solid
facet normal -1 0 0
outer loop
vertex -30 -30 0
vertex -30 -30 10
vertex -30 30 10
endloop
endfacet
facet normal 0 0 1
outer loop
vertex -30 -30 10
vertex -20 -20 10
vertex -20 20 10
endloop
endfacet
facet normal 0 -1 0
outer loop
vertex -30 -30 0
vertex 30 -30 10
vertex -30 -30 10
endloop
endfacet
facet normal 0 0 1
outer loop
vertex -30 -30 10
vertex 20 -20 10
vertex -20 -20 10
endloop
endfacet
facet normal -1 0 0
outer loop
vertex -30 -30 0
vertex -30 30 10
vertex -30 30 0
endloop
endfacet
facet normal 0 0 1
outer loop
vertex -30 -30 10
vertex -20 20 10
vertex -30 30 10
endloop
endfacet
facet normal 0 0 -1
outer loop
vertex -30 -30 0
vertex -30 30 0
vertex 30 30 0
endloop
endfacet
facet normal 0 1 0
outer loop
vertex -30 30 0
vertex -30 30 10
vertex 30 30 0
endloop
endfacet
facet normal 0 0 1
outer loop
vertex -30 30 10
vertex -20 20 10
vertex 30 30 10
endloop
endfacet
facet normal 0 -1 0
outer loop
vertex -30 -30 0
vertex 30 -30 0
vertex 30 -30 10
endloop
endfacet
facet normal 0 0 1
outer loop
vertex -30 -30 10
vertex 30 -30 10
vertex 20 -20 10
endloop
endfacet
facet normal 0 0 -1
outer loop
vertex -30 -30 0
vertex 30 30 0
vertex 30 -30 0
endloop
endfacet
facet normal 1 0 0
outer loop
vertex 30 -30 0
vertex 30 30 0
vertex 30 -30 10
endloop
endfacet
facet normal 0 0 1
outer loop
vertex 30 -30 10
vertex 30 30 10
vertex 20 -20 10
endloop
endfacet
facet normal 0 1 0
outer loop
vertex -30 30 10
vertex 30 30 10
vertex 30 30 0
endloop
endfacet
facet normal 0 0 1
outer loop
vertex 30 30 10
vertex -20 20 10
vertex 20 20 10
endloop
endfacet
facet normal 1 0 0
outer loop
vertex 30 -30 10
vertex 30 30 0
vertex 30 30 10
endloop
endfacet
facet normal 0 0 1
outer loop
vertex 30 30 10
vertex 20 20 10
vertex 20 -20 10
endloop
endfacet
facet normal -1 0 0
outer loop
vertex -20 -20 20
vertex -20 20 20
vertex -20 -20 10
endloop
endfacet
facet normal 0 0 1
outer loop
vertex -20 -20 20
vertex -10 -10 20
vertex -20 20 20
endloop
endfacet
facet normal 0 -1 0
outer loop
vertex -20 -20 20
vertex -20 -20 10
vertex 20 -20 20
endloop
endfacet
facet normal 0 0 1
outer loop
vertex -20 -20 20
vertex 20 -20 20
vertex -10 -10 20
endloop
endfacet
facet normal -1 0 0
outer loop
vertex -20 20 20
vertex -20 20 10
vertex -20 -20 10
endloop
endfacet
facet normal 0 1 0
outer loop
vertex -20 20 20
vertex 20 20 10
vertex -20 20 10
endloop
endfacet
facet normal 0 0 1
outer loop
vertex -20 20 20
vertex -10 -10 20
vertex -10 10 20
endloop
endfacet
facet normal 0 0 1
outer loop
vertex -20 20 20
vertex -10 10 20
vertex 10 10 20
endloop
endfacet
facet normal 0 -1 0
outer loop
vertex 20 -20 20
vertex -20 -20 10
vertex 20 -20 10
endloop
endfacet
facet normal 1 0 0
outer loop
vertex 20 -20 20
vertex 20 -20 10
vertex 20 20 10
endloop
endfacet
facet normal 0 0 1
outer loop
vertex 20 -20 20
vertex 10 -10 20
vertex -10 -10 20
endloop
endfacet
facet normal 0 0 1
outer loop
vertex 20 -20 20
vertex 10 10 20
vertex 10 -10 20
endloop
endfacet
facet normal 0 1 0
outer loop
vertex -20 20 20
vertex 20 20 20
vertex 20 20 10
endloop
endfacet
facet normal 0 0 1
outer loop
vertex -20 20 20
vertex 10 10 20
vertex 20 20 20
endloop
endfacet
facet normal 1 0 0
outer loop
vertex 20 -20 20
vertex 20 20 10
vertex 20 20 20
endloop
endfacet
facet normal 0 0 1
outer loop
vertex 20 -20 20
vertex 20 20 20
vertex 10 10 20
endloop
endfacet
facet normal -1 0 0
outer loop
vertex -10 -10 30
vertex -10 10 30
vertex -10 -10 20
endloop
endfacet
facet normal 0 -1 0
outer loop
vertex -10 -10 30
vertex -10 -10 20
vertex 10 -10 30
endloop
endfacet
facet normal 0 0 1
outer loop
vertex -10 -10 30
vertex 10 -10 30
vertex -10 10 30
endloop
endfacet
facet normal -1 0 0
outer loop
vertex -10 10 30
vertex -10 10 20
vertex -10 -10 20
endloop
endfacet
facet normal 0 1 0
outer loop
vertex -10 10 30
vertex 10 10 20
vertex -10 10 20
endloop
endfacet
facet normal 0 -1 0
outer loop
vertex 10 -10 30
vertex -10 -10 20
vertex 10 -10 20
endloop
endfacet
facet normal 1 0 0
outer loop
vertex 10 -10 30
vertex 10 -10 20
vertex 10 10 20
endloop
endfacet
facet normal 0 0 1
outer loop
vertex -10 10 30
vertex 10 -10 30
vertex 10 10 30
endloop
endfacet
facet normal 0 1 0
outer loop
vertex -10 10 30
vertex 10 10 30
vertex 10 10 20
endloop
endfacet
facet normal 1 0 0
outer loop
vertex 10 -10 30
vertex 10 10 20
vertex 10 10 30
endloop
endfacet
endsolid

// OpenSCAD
// 3段の階段状ピラミッド
// 各立方板は center=true により X/Y 中心を揃え、Z 方向は中心位置で指定

translate([0, 0, 5])   cube([60, 60, 10], center=true); // 底辺 60x60x10
translate([0, 0, 15])  cube([40, 40, 10], center=true); // 中段 40x40x10
translate([0, 0, 25])  cube([20, 20, 10], center=true); // 上段 20x20x10
